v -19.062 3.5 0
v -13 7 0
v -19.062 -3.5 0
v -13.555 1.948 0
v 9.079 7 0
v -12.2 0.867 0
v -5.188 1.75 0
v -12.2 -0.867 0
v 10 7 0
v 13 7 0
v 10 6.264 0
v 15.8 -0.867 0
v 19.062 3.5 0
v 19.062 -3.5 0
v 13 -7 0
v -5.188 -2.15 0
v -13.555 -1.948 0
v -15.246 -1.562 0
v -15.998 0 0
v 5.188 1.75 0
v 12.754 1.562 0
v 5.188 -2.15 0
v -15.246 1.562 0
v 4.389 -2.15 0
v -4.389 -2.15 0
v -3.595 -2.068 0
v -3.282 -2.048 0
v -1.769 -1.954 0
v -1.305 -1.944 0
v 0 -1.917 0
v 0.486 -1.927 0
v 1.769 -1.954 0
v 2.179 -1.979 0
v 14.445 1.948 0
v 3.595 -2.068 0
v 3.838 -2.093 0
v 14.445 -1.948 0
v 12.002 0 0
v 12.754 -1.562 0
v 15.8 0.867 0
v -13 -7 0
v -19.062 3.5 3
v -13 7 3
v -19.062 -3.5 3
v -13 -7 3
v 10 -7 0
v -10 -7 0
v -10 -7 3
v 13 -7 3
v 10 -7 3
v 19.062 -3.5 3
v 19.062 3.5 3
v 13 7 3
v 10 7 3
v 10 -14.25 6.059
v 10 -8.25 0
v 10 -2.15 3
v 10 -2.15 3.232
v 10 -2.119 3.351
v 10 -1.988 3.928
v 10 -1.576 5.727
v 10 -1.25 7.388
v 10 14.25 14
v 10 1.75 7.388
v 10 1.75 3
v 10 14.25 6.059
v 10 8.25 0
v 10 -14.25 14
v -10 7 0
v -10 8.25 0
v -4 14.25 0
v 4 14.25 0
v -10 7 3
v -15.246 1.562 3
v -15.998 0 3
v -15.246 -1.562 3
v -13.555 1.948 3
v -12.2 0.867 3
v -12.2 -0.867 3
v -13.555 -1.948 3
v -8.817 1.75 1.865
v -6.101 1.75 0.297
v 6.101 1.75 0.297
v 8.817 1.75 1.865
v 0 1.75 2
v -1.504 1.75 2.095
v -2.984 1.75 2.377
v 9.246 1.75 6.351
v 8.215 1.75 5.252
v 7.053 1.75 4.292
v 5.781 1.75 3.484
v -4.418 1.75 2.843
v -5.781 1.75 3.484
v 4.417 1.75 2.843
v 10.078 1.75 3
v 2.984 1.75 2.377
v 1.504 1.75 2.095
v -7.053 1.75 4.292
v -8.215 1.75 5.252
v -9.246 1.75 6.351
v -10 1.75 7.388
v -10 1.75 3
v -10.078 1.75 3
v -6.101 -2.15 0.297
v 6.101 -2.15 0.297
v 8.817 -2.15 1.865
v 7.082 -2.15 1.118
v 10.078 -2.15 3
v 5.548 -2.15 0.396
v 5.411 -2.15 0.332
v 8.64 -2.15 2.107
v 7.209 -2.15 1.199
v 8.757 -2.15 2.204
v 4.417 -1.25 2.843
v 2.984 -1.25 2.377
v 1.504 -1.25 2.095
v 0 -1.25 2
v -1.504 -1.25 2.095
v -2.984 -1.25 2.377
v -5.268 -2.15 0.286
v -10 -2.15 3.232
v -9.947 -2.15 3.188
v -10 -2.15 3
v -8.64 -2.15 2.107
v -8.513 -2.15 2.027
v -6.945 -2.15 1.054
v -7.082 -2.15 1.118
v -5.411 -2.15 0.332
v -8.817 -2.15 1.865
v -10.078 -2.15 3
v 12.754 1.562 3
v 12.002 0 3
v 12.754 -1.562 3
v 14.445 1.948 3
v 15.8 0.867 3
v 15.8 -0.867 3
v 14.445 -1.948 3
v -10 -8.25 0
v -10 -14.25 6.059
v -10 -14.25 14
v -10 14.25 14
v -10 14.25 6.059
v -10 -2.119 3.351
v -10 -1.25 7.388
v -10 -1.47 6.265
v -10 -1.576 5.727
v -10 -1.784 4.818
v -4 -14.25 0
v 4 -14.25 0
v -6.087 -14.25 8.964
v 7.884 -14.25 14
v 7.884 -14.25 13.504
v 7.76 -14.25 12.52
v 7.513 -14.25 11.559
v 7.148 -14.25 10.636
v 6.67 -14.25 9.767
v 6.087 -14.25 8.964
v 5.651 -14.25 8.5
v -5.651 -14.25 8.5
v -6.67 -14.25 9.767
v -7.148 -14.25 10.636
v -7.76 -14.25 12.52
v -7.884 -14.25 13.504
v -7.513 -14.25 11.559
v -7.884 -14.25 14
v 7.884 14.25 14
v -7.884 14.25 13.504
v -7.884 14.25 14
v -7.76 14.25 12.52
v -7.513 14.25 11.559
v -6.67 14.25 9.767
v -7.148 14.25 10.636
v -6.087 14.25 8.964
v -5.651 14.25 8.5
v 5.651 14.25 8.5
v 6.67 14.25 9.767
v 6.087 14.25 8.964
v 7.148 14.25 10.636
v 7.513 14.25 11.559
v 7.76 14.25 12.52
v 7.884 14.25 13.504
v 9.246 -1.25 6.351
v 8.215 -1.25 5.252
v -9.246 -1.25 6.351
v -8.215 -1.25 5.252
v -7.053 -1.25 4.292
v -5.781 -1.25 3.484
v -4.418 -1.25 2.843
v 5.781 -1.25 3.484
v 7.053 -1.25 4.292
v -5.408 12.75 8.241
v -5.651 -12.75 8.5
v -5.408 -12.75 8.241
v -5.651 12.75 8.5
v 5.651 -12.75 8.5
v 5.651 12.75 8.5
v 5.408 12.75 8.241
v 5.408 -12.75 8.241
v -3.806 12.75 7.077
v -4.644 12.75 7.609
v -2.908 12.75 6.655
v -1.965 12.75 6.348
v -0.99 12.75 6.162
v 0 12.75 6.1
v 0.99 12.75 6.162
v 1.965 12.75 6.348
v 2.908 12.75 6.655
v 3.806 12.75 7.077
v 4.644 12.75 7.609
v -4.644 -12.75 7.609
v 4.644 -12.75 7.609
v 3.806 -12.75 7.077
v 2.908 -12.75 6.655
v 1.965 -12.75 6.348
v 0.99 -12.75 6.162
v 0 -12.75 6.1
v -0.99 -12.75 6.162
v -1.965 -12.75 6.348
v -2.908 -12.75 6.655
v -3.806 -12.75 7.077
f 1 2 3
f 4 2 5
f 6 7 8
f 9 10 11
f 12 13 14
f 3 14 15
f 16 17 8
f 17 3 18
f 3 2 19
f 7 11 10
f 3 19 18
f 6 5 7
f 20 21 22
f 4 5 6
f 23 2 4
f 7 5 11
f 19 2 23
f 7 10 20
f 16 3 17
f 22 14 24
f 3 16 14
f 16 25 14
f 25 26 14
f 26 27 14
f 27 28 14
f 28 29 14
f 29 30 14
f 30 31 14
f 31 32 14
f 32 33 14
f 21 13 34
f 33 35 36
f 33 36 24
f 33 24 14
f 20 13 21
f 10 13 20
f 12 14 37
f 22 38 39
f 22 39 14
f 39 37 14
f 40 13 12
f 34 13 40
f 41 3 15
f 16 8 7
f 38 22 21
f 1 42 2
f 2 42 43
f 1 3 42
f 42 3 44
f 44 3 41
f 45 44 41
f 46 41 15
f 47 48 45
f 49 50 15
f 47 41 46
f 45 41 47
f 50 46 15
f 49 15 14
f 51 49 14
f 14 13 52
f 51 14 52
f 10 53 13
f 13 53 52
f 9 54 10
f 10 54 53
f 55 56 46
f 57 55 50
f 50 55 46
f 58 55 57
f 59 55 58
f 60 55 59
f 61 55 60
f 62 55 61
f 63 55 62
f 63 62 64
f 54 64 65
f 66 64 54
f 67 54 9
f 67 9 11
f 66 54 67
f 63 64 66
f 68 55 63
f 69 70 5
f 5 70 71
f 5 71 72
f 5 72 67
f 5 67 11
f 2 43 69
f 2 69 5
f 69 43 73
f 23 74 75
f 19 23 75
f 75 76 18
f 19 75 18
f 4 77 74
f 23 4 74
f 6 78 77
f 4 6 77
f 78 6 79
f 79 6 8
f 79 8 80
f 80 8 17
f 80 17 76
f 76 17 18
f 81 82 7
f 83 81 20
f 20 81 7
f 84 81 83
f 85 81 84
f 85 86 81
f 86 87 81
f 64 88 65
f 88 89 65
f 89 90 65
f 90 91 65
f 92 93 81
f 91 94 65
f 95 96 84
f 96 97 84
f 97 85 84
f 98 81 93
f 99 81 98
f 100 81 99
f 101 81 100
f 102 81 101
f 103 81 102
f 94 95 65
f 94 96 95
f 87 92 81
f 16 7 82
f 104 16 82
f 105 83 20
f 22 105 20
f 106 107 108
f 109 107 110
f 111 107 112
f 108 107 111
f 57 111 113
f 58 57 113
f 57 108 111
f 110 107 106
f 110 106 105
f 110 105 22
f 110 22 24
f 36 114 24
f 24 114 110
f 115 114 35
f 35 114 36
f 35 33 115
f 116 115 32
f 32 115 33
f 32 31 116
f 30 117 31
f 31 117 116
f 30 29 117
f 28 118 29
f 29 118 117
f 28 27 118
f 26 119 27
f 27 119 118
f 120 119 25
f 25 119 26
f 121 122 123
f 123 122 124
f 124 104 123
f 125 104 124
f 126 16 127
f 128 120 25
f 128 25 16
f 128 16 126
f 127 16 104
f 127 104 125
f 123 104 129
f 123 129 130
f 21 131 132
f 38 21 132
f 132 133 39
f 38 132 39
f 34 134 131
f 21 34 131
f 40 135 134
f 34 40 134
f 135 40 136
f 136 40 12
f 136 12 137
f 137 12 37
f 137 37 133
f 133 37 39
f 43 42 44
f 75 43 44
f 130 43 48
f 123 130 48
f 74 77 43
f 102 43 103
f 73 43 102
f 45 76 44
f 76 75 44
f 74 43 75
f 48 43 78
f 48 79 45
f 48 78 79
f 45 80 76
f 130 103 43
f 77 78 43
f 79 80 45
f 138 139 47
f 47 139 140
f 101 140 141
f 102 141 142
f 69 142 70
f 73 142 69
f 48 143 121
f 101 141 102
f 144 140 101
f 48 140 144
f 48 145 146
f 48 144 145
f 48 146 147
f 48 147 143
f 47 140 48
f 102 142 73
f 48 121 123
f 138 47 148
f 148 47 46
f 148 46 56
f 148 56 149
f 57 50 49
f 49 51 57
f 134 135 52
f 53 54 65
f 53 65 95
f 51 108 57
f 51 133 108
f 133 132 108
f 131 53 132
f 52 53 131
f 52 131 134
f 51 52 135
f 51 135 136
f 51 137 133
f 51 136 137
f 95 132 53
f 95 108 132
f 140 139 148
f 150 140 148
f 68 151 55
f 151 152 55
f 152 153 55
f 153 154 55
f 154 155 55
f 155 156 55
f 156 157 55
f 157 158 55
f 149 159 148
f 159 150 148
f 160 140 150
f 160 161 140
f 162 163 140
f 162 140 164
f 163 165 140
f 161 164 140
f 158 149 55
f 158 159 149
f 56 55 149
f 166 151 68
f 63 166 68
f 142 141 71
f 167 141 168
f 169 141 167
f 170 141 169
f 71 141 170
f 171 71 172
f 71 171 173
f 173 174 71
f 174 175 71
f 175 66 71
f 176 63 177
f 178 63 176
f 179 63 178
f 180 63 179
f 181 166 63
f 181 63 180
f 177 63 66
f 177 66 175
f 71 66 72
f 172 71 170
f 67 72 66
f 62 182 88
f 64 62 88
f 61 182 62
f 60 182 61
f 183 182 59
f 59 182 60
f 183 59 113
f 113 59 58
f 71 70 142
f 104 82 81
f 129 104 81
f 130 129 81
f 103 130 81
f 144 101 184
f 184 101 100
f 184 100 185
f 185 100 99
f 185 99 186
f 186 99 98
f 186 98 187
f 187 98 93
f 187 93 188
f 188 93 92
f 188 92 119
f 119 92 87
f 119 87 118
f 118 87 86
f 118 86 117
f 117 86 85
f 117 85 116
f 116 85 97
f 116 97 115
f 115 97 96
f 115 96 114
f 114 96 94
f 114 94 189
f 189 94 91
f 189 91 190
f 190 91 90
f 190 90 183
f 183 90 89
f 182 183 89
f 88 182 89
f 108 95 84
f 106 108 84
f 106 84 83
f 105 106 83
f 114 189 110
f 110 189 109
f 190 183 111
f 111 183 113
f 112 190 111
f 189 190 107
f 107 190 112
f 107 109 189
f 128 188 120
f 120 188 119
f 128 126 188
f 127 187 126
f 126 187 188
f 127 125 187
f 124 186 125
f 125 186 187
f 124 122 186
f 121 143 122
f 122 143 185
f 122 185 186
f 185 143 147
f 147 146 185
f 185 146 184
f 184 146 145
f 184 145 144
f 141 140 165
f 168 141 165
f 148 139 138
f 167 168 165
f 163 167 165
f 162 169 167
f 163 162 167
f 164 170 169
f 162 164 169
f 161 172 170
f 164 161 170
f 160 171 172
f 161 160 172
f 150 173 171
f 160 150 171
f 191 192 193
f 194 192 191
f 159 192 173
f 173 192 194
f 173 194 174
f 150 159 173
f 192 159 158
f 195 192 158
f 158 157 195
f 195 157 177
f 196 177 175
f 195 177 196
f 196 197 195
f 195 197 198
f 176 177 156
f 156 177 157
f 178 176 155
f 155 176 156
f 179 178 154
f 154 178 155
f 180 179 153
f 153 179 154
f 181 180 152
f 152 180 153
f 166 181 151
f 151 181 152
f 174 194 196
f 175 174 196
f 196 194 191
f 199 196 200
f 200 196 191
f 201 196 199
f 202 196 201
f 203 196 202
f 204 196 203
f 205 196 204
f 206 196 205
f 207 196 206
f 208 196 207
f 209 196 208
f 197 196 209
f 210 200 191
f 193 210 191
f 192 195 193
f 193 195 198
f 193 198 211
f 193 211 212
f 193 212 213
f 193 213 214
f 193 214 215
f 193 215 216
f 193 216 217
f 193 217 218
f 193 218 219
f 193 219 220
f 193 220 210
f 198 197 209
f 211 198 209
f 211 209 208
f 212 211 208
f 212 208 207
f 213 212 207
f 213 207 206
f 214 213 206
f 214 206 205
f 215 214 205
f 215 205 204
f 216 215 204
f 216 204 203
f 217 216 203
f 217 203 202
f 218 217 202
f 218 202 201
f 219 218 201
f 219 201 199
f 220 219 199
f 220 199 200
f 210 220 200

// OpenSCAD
// file: functions.scad
// Mendel Dynamics
// Functions used in many files
// GNU GPL v3
// Emili Sapena 
// emili@bcndynamics.com
// bcndynamics.com
// http://wiki-es.bcndynamics.com/Mendel_Dynamics
// http://github.com/djemili/MendelDynamics
// http://www.reprap.org/wiki/Mendel_Dynamics

// Some functions from:
// Prusa Mendel
// GNU GPL v3
// Josef Průša
// josefprusa@me.com
// prusadjs.cz
// http://www.reprap.org/wiki/Prusa_Mendel
// http://github.com/prusajr/PrusaMendel


module nut(d,h,horizontal=true){
cornerdiameter =  (d / 2) / cos (180 / 6);
cylinder(h = h, r = cornerdiameter, $fn = 6);
if(horizontal){
for(i = [1:6]){
	rotate([0,0,60*i]) translate([-cornerdiameter-0.2,0,0]) rotate([0,0,-45]) cube(size = [2,2,h]);
}}
}

// Based on nophead research
module polyhole(d,h) {
    n = max(round(2 * d),3);
    rotate([0,0,180])
        cylinder(h = h, r = (d / 2) / cos (180 / n), $fn = n);
}




module roundcorner(diameter){
	difference(){
		cube(size = [diameter,diameter,99], center = false);
		translate(v = [diameter, diameter, 0]) cylinder(h = 100, r=diameter, center=true);
	}
}


module roundcorner(diameter){
	difference(){
		cube(size = [diameter,diameter,99], center = false);
		translate(v = [diameter, diameter, 0]) cylinder(h = 100, r=diameter, center=true, $fn=10);//no augmentar
	}
}

// This module creates the shape that needs to be substracted from a cube to make its corners rounded.
module MycreateMeniscus(h,radius,angle) 
difference(){
	translate([radius/2+0.1+30/2,radius/2+0.1,0]){
		cube([radius+0.2+30,radius+0.1+radius*sin(angle),h+0.2],center=true);         
	}
	
	cylinder(h=h+0.2,r=radius,$fn = 100,center=true);
}

//     __          __ 
//    |__|   ()   |__|
//
module Connection(sep=40)
union() {
	translate([-sep/2,0,(grosor+2)/2]) cube([10+0.1,grosor+0.1,grosor+2], center=true);
	translate([sep/2,0,(grosor+2)/2]) cube([10+0.1,grosor+0.1,grosor+2], center=true);
	cylinder(h=grosor+2, r=m3_diameter/2, $fn=fnfn);
}

// without m3 hole
//     __          __
//    |__|        |__|
//

module ConnectionNC(sep=40)
union() {
	translate([-sep/2,0,(grosor+2)/2]) cube([10+0.1,grosor+0.1,grosor+2], center=true);
	translate([sep/2,0,(grosor+2)/2]) cube([10+0.1,grosor+0.1,grosor+2], center=true);
}

//     __          __ 
//  __|  |________|  |__
//           
module ConnectionOut(sep=40)
union() {
	translate([-sep/2,grosor/2,grosor/2]) cube([10,grosor,grosor], center=true);
	translate([sep/2,grosor/2,grosor/2]) cube([10,grosor,grosor], center=true);
}

//     __          __ 
//  __|  |___  ___|  |__
//           ||           
//           ++

module BoltHole(canal=true)
union() {
	if (canal) {
		translate([0,-5,(grosor+2)/2-1]) cube([m3_diameter,21,grosor+2], center=true);
	}
	translate([0,-10,(grosor+2)/2-1]) cube([m3_nut_diameter_horizontal,3,grosor+2], center=true);
}


module M3hole(hex=0) {
	
	if (hex) {
		cylinder(h=grosor+2,r=m3_nut_diameter_horizontal/2+0.5, $fn=6);
	}
	else {
		cylinder(h=grosor+2,r=m3_diameter/2, $fn=fnfn);
	}
}

//Hole for Bearing 608
module b608(h=8)
{
	translate([0,0,h/2]) cylinder(r=hole_for_608/2,h=h,center=true,$fn=fnfn);
}


module M8hole(h=8)
{
	translate([0,0,h/2]) cylinder(r=m8_hole/2,h=h,center=true,$fn=fnfn);
}

module motor()
{
	union() {
		cube([l_motor,a_motor,a_motor]);
		translate([-20,a_motor/2,a_motor/2])
		rotate([0,90,0]) cylinder(h=20,r=2.5);
	}
}

// nema 17 holes
module MotorHoles()
{
	translate([motor_h_sep/2, motor_h_sep/2, 0]) M3hole();
	translate([motor_h_sep/2, -motor_h_sep/2, 0]) M3hole();
	translate([-motor_h_sep/2, motor_h_sep/2, 0]) M3hole();
	translate([-motor_h_sep/2, -motor_h_sep/2, 0]) M3hole();
	translate(v=[0,0,0]) cylinder(r=26/2, h=grosor+2, $fn=fnfn);
}
// file: constants.scad
// Mendel Dynamics
// Constant values used in many files
// GNU GPL v3
// Emili Sapena 
// emili@bcndynamics.com
// bcndynamics.com
// http://wiki-es.bcndynamics.com/Mendel_Dynamics
// http://github.com/djemili/MendelDynamics
// http://www.reprap.org/wiki/Mendel_Dynamics

//DEBUG
//fnfn=10;

//RENDER
fnfn=60;


// Plates' thickness
grosor=5;

threaded_rod_diameter = 8.7;
m3_diameter = 3.6;
m3_nut_diameter = 5.3;
m3_nut_diameter_horizontal = 6.1;

m8_clearance_hole=8.8;
m8_hole=8.4;
hole_for_608=22.3;
608_diameter=22;
pulley_diameter=10; //TODO

hole_separation=58.5; //from Prusa's frame vertex
xbars_separation=50;
hotend_hole_sep=30;
xventilador=10; //TODO
l_motor=50; // 47 mesurat per mi! deixem 50 per si hi ha motors mes llargs
a_motor=42.4; //mesurat per mi!
motor_h_sep=31;

pla_diam=3;
teflon_diam=16.3;

bushing_holes_dist=28;
rod_clamp_holes_dist=15;
belt_clamp_holes_dist=18;

//Recheck these values:
ramps_holes_a=48;
ramps_holes_b=82.5;
ramps_holes_c=75;

lme8uu=false;
lm8uu_diameter=(lme8uu==true) ? 16 : 15;
lm8uu_length=(lme8uu==true) ? 25 : 24;
lm8uu_radius = lm8uu_diameter / 2;
block_height = 2*lm8uu_length+17;

//==================================


// Triangles
marge_llarg=75;
marge_curt=10;
lateral=320+marge_llarg*2;
altura=lateral*sin(60);

//y_off=7*8.65;
y_off=60;
ample_z=100;
marge_z=20;
offset_z=20; //eleva inici del forat eix z
altura_z=(lateral-(ample_z/2+marge_z)/cos(60))*sin(60)-marge_z-offset_z;


// Lamines base i frontal

llarg_base=234;
curt_base=80;
llarg_front=llarg_base+40;

// Safata
distC_safata=210;
distV_safata=140;
distB_safata=40;
dist_belt=18;
ample_safata=220;
llarg_safata=220;
dist_bushing=28;

ample_total=410; //distancia entre centres de varilles llises Z
// z_motor
llarg_zm=(ample_total-llarg_base-grosor*2)/2 + 20;
//llarg_zm=100;
ample_zm=hole_separation+m8_clearance_hole*2+10;
zdist=30;

//extruder
x_motor_ex=xventilador+10+hotend_hole_sep/2+10;
y_motor_ex=10;
hotend_rotation=90; 
llarg_ex=xventilador+hotend_hole_sep+l_motor+30;
ample_ex=xbars_separation+m8_clearance_hole*2+10;

//xend
ample_xe=ample_ex;
llarg_xe=zdist+40;


//y motor
llarg_ym=hole_separation+threaded_rod_diameter+20;

//alt
ample_ym=a_motor+10;

//x carriage
llarg_xc=105;
ample_xc=xbars_separation+bushing_holes_dist+10;
// file: metric.scad
// PRUSA iteration3
// Default metric sizes
// GNU GPL v3
// Josef Průša <josefprusa@me.com>
// http://www.reprap.org/wiki/Prusa_Mendel
// http://github.com/prusajr/PrusaMendel

// DONT CHANGE THIS FILE! ALTER VALUES IN CONFIGURATION.SCAD INSTEAD

// RODS

threaded_rod_diameter = 8.7;
threaded_rod_diameter_horizontal = 9;
smooth_bar_diameter = 8;
smooth_bar_diameter_horizontal = 8.5;
smooth_big_bar_diameter_horizontal = 10.8;

// Nuts and bolts


m8_diameter = 9;
//iso4032 says Width across corners = 14.38
m8_nut_diameter = 14.1;

m4_diameter = 4.7;
//iso4032 says 7.66
m4_nut_diameter = 7.6;
m4_nut_diameter_horizontal = 8.15;

m3_diameter = 3.4;
//iso4032 says 6.01
m3_nut_diameter = 5.3;
m3_nut_diameter_horizontal = 6.8;
m3_washer_diameter = 6.9;

// Motors

motor_shaft = 5.5;
// file: configuration.scad
// PRUSA Mendel  
// Configuration file
// GNU GPL v3
// Josef Průša
// josefprusa@me.com
// prusadjs.cz
// http://www.reprap.org/wiki/Prusa_Mendel
// http://github.com/prusajr/PrusaMendel

// PLEASE SELECT ONE OF THE CONFIGURATIONS BELOW
// BY UN-COMMENTING IT

// Uncomment for metric settings
// METRIC METRIC METRIC METRIC METRIC METRIC METRIC METRIC 

include <metric.scad>;
include <constants.scad>

// CUSTOM CUSTOM CUSTOM CUSTOM CUSTOM CUSTOM CUSTOM CUSTOM CUSTOM

thin_wall = 3;


// Linear bearing version
linear = false;
// set false for LM-8UU, true for LM-E-8UU (ignore if linear is set to false)
lme8uu = false;



// CHANGE ONLY THE STUFF YOU KNOW
// IT WILL REPLACE DEFAULT SETTING

// RODS

// threaded_rod_diameter = 0;
// threaded_rod_diameter_horizontal = 0;
// smooth_bar_diameter = 0;
// smooth_bar_diameter_horizontal = 0;

// Nuts and bolts

// m8_diameter = 0;
// m8_nut_diameter = 0;

// m4_diameter = 0;
// m4_nut_diameter = 0;

// m3_diameter = 0;
// m3_nut_diameter = 0;

// Bushing holder

// bushing_core_diameter = smooth_bar_diameter;
// bushing_material_thickness = 0;


///counted stuff
m3_nut_diameter_bigger = ((m3_nut_diameter  / 2) / cos (180 / 6))*2;

// functions 
include <functions.scad>
// main file
// Mendel Dynamics
// Y and X bushing holder
// GNU GPL v3
// Emili Sapena 
// emili@bcndynamics.com
// bcndynamics.com
// http://wiki-es.bcndynamics.com/Mendel_Dynamics
// http://github.com/djemili/MendelDynamics
// http://www.reprap.org/wiki/Mendel_Dynamics


include <configuration.scad>
include <bushing.scad>

/**
 * @id y-bushing
 * @name Y bushing
 * @category Printed
 * @using 4 m3washer
 * @using 2 m3x15xhex
 * @using 2 m3nut
 */

snap_in_mount = false;

// Greg Frosts
y_linear_bearings();
